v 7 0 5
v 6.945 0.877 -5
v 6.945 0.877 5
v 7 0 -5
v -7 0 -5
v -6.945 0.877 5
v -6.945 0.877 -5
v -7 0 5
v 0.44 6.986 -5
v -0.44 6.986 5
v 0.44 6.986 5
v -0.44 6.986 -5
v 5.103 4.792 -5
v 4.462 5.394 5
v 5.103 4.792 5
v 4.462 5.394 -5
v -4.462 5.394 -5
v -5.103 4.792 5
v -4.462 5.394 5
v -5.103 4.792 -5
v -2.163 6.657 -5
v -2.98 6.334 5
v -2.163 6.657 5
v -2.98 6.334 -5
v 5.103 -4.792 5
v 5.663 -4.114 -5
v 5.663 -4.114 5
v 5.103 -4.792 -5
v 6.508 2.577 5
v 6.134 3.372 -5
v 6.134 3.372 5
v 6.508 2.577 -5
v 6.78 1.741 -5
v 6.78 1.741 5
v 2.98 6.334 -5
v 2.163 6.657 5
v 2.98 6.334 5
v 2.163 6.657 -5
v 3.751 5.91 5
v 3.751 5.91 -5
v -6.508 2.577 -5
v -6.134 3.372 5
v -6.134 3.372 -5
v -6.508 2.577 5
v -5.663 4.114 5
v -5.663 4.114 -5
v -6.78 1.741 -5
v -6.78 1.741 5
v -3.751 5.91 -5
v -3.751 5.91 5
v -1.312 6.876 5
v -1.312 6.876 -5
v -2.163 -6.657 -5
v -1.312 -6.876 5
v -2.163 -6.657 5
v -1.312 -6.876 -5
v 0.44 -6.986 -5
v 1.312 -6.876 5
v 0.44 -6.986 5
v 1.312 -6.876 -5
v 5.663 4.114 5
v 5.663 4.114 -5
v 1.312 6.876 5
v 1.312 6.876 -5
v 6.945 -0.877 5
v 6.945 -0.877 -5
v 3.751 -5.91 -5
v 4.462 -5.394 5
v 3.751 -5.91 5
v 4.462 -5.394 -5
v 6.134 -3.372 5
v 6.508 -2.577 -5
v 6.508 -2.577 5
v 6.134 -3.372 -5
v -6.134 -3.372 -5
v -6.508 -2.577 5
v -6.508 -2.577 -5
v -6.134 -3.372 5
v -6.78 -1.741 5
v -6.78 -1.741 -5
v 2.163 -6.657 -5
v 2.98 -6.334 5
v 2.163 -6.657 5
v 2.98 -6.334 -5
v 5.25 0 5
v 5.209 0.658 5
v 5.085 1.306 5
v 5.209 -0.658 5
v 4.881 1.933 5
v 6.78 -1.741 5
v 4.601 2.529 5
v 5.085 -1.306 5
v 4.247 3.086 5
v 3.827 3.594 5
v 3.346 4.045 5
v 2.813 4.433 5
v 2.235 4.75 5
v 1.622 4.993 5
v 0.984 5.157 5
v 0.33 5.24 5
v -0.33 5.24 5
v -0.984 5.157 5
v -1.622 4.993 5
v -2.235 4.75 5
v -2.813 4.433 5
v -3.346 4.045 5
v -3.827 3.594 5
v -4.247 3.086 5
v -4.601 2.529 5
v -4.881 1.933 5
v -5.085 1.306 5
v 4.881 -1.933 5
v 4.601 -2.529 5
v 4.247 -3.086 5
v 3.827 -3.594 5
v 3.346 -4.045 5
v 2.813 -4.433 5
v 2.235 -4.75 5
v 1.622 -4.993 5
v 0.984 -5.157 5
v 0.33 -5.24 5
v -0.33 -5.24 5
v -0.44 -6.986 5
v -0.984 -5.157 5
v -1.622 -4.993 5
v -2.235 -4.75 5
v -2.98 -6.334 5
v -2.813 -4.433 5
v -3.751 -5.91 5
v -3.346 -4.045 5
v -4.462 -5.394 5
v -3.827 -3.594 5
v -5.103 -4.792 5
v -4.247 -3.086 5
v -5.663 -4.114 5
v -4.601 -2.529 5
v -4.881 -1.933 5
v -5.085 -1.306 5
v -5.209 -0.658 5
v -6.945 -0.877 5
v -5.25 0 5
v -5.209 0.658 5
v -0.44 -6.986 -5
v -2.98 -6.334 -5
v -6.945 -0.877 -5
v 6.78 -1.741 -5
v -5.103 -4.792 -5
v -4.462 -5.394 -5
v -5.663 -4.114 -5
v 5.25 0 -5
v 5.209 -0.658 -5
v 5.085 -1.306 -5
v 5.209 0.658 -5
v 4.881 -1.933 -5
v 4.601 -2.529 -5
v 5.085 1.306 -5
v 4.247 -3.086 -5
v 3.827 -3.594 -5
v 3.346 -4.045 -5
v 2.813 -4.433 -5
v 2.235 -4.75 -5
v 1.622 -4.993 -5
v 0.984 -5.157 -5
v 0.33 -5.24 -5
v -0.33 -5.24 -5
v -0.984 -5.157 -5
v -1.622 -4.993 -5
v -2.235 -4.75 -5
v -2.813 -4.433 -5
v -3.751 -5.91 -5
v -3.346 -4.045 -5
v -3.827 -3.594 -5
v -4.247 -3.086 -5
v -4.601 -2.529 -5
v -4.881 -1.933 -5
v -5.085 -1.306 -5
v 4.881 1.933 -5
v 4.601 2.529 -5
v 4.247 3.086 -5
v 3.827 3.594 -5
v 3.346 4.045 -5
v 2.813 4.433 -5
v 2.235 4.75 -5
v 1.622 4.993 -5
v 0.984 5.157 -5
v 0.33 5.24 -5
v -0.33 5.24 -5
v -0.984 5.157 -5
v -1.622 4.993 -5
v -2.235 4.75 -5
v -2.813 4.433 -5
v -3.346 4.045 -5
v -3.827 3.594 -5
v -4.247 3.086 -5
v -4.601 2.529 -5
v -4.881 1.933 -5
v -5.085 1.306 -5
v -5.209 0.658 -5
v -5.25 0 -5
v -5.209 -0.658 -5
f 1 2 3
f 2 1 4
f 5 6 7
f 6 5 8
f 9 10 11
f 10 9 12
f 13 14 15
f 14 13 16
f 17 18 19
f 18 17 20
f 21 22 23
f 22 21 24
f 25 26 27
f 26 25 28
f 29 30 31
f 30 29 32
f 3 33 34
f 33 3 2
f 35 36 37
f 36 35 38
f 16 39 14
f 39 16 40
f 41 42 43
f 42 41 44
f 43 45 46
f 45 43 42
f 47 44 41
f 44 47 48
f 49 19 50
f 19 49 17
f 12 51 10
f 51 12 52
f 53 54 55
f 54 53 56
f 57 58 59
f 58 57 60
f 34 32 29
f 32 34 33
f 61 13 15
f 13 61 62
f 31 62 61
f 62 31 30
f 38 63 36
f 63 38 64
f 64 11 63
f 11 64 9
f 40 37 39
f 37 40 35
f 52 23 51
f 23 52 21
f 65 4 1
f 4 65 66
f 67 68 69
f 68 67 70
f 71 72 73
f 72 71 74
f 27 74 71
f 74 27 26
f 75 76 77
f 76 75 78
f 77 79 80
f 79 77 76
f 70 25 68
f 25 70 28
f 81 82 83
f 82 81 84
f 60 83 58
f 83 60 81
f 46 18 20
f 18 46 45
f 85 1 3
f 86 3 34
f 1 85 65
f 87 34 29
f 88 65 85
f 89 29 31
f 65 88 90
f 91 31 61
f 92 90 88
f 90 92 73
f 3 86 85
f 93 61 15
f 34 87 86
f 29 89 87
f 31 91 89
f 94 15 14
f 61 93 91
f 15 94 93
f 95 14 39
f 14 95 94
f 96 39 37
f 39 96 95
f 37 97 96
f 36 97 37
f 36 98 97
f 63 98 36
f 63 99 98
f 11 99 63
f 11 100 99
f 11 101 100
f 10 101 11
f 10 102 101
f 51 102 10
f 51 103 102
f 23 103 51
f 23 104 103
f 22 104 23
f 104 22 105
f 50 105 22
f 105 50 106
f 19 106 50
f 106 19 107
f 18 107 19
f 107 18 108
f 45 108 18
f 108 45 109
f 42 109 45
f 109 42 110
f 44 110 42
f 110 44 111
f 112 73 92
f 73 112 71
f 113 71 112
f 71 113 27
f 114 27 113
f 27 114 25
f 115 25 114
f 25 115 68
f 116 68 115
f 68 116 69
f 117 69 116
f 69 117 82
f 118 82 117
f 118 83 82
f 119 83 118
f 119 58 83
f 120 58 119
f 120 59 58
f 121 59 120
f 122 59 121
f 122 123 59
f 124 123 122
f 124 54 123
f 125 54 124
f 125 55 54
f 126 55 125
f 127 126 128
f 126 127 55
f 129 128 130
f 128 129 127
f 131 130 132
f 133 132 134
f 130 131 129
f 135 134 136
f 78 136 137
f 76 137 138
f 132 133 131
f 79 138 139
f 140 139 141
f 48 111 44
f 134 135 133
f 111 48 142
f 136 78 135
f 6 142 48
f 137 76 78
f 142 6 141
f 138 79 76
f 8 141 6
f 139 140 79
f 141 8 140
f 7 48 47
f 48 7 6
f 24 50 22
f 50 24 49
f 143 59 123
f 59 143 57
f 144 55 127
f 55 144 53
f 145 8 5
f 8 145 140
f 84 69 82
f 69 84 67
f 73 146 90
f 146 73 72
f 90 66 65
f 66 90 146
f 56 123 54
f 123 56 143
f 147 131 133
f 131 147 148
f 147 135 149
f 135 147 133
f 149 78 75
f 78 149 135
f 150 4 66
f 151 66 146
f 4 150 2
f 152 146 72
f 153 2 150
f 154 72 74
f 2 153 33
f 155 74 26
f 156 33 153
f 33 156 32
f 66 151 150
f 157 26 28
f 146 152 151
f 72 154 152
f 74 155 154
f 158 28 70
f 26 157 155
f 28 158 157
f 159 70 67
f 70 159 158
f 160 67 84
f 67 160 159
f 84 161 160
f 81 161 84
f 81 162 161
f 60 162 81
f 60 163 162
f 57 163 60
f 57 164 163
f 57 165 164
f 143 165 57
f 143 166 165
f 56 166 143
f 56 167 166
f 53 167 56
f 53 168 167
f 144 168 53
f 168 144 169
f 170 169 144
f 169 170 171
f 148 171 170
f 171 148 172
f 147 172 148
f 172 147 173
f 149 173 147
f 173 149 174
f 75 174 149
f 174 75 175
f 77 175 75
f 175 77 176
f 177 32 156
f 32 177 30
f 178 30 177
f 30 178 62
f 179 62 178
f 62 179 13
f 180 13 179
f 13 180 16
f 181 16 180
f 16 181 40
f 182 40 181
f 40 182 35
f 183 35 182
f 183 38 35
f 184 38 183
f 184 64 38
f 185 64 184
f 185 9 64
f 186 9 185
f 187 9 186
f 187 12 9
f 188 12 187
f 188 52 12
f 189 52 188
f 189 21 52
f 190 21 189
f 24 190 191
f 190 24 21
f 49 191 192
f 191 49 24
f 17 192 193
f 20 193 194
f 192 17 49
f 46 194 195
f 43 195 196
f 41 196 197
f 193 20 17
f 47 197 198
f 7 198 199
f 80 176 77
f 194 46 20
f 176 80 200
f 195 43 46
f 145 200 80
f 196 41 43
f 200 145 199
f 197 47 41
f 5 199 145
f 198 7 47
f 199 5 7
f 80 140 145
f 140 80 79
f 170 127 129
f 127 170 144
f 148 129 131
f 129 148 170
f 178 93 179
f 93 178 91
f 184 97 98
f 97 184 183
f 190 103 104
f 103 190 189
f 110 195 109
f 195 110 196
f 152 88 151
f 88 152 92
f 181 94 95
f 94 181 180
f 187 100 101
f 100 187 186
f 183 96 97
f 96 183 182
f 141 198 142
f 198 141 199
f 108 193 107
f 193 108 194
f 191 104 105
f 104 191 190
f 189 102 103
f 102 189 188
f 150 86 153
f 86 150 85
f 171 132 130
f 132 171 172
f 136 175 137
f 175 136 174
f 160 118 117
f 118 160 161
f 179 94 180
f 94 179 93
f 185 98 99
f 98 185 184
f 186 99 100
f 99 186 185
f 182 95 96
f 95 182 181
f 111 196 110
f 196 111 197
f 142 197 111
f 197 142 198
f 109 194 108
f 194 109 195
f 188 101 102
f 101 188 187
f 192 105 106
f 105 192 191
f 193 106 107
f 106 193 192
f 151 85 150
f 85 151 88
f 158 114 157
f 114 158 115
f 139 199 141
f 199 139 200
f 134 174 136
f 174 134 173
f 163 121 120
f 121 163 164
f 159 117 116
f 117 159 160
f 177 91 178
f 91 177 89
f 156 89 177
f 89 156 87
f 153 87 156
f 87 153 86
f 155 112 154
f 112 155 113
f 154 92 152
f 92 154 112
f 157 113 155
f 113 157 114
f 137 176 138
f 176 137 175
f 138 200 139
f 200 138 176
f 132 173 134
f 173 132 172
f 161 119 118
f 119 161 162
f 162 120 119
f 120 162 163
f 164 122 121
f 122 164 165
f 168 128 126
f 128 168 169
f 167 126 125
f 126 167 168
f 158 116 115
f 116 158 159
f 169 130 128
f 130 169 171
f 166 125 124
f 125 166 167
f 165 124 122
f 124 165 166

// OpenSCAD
$fn = 50;


difference() {
	union() {
		translate(v = [0, 0, -5.0000000000]) {
			cylinder(h = 10, r = 7.0000000000);
		}
	}
	union() {
		translate(v = [0, 0, -100.0000000000]) {
			cylinder(h = 200, r = 5.2500000000);
		}
	}
}
